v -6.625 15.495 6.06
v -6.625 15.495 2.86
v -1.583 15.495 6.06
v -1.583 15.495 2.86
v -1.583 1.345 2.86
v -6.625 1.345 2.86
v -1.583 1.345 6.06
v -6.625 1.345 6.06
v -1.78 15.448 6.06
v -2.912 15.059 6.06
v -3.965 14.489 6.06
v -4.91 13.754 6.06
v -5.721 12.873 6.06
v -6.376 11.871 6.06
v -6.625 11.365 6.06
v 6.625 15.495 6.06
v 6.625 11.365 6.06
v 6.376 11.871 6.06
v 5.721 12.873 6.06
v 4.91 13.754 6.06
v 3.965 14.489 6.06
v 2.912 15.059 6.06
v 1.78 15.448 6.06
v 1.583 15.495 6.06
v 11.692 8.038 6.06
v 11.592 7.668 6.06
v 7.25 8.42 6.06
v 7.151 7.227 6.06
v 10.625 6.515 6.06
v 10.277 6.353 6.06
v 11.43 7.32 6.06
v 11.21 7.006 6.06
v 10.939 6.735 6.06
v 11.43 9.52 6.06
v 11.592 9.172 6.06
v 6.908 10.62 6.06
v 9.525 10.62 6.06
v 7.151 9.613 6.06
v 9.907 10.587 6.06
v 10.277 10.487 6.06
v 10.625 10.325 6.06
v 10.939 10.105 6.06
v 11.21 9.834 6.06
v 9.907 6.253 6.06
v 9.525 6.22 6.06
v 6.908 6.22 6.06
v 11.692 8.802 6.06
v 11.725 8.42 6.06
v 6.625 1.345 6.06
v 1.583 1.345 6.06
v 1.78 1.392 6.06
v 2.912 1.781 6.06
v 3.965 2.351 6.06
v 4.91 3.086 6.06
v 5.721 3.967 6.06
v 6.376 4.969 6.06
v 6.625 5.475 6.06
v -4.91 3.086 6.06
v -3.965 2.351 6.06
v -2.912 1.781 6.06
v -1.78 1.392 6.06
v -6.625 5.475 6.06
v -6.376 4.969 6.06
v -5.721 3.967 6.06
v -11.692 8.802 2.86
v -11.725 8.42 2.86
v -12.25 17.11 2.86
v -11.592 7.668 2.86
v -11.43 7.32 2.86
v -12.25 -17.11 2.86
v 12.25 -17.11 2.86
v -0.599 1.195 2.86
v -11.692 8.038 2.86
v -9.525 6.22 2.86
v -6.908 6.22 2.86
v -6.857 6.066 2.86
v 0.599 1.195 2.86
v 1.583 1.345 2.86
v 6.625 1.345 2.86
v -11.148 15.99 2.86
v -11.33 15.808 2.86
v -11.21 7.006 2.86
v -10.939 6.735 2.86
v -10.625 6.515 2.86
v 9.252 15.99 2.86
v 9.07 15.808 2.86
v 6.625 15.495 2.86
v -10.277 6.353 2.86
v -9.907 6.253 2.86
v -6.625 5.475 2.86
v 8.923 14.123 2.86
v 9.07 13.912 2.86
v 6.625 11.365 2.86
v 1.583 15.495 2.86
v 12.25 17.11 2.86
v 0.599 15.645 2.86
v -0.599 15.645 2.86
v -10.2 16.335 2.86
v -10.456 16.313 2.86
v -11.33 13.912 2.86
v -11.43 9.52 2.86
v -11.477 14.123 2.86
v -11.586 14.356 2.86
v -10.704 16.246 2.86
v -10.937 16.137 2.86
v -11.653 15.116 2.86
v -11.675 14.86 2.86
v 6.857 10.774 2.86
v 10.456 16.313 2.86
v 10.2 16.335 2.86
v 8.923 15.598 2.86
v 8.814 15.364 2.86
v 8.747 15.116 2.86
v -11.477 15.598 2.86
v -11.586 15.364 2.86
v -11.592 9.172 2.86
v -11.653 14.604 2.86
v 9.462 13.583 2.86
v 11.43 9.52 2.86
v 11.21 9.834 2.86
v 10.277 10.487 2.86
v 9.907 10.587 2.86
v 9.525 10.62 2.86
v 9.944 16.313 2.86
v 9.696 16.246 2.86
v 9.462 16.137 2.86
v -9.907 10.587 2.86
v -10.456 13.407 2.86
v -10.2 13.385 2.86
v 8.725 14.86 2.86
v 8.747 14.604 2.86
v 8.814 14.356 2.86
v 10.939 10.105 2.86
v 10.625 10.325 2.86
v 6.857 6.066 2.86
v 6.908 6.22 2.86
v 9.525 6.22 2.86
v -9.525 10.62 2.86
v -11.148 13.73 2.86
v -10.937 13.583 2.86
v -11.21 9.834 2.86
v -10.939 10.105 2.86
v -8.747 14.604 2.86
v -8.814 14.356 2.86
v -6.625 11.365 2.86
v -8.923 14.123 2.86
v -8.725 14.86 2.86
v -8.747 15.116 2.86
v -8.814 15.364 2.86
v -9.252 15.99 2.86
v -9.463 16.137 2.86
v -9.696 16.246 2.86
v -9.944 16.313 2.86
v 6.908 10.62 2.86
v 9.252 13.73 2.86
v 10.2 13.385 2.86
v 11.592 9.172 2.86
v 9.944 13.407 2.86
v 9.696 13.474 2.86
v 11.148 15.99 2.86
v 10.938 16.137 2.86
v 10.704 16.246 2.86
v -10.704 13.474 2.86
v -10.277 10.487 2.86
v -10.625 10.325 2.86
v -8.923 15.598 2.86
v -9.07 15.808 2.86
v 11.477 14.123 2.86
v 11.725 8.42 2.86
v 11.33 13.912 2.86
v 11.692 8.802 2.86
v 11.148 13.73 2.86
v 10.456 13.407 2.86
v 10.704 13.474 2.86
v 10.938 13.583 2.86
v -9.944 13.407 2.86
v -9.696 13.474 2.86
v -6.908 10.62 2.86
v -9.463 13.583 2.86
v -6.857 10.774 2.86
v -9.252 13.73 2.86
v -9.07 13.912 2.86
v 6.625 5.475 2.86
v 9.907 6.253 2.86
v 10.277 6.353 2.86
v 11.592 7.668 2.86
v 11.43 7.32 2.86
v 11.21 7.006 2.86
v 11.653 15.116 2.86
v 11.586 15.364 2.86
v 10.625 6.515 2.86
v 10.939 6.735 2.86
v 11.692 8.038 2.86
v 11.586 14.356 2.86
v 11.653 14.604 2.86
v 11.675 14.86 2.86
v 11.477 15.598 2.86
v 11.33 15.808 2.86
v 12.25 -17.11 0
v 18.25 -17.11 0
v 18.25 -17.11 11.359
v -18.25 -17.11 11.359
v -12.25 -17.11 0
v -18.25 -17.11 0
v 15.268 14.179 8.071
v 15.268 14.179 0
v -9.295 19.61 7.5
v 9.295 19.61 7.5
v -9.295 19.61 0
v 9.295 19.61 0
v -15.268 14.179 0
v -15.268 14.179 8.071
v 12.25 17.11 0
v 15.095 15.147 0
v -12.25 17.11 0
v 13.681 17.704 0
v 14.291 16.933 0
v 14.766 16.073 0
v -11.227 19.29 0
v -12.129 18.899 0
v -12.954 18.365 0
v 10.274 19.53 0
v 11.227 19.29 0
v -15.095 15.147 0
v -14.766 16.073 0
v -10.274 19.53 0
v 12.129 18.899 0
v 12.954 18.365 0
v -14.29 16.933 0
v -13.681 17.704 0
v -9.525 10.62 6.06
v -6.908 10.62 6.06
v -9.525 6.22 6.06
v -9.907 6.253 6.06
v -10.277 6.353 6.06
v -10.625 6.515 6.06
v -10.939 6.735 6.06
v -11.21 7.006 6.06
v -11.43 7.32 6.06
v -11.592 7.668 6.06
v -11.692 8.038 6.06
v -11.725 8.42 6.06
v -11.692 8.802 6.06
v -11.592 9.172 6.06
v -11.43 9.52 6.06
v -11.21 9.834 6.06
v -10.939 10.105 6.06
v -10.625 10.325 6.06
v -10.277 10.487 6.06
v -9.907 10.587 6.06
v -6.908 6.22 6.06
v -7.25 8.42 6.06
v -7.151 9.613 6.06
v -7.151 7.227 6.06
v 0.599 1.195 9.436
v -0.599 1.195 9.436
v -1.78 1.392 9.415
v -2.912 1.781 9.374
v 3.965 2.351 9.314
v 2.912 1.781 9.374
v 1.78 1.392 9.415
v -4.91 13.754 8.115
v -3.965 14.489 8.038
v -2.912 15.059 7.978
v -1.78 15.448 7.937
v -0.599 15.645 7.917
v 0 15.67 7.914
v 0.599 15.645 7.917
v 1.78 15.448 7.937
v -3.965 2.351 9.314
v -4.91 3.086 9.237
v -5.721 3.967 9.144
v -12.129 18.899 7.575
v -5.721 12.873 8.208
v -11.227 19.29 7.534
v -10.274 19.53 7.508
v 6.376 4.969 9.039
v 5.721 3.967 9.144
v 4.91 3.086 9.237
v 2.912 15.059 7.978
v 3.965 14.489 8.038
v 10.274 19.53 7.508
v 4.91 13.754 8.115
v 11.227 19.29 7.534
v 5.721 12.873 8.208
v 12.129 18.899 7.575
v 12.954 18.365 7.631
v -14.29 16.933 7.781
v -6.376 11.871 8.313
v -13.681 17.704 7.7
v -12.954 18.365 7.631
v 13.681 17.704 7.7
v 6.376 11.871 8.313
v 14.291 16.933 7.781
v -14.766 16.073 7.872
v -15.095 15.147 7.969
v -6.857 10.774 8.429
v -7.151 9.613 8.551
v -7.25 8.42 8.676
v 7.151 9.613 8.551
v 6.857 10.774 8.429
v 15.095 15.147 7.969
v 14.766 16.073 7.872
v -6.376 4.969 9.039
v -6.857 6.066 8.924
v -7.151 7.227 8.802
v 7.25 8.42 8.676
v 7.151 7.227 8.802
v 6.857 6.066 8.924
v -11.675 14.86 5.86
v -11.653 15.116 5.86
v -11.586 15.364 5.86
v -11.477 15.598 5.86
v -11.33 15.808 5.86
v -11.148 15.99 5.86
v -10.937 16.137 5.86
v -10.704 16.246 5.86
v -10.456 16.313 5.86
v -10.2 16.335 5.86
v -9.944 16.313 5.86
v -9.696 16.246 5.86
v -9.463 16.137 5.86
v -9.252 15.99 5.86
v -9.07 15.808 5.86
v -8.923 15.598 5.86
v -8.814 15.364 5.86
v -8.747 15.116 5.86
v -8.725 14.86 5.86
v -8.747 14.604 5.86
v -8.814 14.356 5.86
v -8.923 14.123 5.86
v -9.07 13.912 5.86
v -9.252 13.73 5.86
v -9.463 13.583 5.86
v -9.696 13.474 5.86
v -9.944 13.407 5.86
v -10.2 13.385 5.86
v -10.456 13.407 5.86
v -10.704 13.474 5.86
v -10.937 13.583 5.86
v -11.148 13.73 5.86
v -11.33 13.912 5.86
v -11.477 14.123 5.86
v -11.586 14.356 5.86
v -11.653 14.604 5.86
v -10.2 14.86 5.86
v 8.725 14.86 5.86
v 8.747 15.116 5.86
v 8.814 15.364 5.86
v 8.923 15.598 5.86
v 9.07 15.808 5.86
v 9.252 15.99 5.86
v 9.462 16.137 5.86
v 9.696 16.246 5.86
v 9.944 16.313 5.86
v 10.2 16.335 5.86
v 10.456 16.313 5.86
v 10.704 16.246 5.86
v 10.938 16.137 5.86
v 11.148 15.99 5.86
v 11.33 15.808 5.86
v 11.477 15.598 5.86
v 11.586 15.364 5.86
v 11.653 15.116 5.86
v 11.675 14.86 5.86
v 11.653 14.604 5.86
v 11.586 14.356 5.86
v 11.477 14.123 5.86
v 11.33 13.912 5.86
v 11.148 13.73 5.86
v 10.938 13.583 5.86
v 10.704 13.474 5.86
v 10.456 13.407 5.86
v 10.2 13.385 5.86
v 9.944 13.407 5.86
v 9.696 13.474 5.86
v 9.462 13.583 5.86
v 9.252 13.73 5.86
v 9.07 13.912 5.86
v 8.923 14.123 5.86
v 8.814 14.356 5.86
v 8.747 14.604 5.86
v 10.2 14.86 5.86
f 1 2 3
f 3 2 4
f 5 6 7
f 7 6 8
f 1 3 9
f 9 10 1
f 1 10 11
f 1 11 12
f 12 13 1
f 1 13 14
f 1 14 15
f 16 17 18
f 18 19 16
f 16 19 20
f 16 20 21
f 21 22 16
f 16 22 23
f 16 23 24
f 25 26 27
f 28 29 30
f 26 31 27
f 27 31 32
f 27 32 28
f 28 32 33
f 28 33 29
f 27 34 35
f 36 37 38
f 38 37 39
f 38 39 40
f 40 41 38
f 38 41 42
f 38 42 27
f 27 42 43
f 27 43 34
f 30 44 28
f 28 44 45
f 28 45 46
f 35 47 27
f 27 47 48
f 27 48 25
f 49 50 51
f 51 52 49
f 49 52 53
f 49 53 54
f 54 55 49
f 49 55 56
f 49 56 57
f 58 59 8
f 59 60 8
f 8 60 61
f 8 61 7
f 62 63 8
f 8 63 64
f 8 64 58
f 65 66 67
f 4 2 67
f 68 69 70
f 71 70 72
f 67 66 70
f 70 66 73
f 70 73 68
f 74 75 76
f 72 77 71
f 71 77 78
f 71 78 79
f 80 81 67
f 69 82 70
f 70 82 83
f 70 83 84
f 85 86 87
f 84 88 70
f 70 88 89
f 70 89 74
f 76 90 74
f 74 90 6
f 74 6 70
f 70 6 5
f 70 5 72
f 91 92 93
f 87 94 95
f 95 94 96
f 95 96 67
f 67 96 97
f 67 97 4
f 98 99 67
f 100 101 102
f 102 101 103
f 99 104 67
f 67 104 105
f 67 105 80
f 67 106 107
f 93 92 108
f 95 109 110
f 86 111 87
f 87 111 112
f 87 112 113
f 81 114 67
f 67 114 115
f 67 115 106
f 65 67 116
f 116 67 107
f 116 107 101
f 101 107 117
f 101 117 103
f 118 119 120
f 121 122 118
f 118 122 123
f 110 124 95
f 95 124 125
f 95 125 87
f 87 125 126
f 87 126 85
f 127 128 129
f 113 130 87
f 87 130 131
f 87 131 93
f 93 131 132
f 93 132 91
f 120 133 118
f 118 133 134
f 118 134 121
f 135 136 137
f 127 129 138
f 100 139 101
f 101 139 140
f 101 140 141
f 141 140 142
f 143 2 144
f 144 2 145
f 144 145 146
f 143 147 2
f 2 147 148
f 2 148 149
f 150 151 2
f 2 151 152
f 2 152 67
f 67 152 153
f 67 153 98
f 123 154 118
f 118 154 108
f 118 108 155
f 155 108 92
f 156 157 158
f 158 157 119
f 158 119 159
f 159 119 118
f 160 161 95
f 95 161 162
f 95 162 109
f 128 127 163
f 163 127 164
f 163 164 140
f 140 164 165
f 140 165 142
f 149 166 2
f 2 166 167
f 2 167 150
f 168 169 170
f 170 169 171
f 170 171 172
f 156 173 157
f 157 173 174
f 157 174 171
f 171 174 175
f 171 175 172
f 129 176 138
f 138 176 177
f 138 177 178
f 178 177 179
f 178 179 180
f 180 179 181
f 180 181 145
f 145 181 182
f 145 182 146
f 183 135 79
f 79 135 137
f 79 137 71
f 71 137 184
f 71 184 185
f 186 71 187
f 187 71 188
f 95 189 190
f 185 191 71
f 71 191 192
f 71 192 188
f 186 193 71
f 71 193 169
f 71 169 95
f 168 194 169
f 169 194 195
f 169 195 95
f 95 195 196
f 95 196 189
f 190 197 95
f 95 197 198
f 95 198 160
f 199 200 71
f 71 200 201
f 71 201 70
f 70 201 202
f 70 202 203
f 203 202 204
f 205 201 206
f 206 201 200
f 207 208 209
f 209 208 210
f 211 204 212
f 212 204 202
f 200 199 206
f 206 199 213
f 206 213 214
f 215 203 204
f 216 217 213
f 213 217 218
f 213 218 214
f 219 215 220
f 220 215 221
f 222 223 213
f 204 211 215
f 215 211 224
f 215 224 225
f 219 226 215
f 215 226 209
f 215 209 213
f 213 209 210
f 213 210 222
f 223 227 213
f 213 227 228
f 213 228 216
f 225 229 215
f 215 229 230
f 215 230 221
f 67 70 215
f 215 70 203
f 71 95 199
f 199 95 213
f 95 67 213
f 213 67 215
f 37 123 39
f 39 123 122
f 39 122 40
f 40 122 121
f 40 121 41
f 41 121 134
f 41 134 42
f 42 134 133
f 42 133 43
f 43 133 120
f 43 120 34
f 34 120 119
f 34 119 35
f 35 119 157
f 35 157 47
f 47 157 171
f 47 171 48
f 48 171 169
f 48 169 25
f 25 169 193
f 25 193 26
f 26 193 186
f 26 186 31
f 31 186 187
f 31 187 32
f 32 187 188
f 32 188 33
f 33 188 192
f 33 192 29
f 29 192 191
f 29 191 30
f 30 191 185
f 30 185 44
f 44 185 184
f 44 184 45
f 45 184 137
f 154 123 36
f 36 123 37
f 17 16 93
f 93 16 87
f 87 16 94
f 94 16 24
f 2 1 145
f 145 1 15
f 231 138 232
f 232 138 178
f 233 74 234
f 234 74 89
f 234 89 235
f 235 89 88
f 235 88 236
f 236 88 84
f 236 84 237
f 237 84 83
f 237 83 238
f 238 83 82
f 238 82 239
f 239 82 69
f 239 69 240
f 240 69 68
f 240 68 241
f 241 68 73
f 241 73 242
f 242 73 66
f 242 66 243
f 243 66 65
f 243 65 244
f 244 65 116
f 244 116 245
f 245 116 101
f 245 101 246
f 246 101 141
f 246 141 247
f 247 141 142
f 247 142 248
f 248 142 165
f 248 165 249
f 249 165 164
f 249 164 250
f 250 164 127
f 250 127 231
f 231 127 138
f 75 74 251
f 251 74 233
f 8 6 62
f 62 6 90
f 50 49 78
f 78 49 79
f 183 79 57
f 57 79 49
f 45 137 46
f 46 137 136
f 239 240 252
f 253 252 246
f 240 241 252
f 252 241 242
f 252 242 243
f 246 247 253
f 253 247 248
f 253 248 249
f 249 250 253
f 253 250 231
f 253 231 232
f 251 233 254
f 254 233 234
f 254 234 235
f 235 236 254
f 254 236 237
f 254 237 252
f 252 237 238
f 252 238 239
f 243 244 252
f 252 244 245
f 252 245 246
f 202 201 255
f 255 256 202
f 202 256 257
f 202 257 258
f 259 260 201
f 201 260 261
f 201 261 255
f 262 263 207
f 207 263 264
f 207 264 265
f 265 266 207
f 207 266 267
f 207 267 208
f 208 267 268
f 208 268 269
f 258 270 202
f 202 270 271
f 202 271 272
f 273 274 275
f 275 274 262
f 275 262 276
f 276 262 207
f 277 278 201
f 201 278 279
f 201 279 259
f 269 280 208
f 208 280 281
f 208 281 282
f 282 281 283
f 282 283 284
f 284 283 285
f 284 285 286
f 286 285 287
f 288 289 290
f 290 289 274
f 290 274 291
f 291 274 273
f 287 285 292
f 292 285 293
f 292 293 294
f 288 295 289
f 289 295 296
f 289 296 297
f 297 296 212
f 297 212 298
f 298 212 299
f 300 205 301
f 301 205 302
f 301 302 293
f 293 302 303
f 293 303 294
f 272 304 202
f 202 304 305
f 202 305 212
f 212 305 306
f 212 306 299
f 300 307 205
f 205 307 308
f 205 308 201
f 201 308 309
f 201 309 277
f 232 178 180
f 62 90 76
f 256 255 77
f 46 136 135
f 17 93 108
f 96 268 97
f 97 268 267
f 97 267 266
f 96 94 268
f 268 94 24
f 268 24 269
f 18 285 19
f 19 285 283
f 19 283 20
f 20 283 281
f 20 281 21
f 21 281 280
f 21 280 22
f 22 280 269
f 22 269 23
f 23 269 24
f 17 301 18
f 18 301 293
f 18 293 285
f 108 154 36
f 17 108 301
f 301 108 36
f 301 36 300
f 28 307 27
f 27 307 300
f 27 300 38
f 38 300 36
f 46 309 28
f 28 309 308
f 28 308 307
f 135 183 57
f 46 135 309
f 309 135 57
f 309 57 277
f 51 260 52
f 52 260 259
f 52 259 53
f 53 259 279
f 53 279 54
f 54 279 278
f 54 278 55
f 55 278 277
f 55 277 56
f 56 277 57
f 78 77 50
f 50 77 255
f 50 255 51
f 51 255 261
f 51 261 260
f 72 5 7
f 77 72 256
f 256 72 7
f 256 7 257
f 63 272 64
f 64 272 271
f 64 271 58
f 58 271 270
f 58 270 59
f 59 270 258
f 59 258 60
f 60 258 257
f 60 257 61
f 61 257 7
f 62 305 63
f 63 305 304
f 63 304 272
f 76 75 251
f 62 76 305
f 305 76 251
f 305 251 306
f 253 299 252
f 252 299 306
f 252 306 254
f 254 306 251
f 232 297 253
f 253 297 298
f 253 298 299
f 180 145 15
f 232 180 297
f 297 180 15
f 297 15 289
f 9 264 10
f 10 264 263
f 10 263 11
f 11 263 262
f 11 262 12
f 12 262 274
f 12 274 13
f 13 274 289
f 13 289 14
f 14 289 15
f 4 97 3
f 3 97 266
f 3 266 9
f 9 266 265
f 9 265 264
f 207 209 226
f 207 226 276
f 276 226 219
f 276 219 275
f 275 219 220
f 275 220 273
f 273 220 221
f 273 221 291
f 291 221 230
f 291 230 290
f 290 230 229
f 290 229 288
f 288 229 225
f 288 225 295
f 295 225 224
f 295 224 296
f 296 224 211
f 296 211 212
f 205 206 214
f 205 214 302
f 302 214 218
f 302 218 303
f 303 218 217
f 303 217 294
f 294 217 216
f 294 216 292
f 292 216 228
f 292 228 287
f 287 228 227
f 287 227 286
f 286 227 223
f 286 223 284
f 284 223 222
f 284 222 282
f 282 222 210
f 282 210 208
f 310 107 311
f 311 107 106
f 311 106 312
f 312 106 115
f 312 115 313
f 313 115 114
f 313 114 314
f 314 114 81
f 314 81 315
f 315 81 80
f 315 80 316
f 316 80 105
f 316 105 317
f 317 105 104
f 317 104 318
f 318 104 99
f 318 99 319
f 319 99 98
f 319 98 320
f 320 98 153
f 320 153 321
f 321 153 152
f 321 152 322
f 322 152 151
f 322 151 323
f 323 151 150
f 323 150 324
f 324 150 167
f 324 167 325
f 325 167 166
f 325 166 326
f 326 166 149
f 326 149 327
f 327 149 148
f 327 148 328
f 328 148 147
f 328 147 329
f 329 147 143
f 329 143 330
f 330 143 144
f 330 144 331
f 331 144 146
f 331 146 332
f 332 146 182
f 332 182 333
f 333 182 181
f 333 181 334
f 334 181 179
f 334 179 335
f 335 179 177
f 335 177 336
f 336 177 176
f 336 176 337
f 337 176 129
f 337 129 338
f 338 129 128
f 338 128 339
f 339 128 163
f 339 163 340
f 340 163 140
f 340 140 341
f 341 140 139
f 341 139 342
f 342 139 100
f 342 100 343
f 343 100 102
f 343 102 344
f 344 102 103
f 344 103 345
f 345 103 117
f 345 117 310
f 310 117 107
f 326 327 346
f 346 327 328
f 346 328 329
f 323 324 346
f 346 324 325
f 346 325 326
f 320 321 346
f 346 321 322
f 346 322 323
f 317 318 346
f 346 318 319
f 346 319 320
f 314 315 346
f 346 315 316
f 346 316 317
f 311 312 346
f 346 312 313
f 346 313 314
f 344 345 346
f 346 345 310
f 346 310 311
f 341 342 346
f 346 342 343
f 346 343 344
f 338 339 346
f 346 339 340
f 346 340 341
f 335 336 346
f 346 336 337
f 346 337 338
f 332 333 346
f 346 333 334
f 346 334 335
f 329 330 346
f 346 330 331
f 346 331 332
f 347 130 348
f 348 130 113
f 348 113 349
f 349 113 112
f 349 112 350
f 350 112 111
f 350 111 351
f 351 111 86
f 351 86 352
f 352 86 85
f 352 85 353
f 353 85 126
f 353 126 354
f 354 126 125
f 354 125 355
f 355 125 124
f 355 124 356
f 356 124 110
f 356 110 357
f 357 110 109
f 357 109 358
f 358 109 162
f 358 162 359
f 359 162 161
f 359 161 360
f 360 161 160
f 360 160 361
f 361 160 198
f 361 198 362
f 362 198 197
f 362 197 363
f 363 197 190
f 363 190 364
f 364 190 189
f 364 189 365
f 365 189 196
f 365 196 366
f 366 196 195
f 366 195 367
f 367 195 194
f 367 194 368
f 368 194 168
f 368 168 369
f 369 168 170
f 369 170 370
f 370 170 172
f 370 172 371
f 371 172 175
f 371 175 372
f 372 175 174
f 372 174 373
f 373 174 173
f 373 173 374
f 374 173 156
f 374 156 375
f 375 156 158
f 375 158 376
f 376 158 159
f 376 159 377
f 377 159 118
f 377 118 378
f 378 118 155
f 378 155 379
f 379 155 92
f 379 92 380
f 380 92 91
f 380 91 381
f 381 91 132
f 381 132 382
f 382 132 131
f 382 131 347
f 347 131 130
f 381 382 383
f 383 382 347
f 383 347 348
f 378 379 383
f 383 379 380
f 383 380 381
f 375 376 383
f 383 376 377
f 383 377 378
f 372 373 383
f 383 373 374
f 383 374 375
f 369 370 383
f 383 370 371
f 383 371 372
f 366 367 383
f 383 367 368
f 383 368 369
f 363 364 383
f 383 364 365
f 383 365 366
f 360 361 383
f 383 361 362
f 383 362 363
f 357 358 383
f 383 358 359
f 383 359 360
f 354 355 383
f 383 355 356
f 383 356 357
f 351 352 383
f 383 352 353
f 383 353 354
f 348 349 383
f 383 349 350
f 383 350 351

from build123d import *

# Parameters (mm, degrees)
SKETCH1_W               = 24.5
SKETCH1_H               = 34.22
BOSS_EXTRUDE1_DEPTH     = 7.5
SKETCH2_W               = 24.5
SKETCH2_H               = 34.22
CUT_EXTRUDE1_DEPTH      = 2.86
SKETCH3_W               = 13.25
SKETCH3_H               = 14.15
CUT_EXTRUDE2_DEPTH      = 3.2
BOSS_EXTRUDE2_START     = -18.25
BOSS_EXTRUDE2_DEPTH     = 36.5
BOSS_EXTRUDE2_START_2   = 7.5
BOSS_EXTRUDE2_2_DEPTH   = 4.5
CUT_EXTRUDE3_DEPTH      = 28.465218004
CUT_EXTRUDE3_DEPTH_BACK = 28.465218004
SKETCH4_R               = 7.25
FILLET1_R               = 6
SKETCH6_R               = 1.475
CUT_EXTRUDE4_DEPTH      = 3


with BuildPart() as part:
    # Sketch1 → Boss-Extrude1 (new body)
    with BuildSketch(Plane.XY):
        Polygon((-12.25, -17.11), (-12.25, 17.11), (12.25, 17.11), (12.25, -17.11), (18.25, -17.11), (14.75, 19.61), (-14.75, 19.61), (-18.25, -17.11), align=None)
        Rectangle(SKETCH1_W, SKETCH1_H)
    extrude(amount=BOSS_EXTRUDE1_DEPTH)

    # Sketch2 → Cut-Extrude1 (cut)
    with BuildSketch(Plane(origin=(0, 0, 0), x_dir=(-1, 0, 0), z_dir=(0, 0, -1))):
        Rectangle(SKETCH2_W, SKETCH2_H)
    extrude(amount=-CUT_EXTRUDE1_DEPTH, mode=Mode.SUBTRACT)

    # Sketch3 → Cut-Extrude2 (cut)
    with BuildSketch(Plane(origin=(0, 0, 2.86), x_dir=(-1, 0, 0), z_dir=(0, 0, -1))):
        with BuildLine():
            Line((-6.625, 6.22), (-6.625, 10.62))
            Line((-6.625, 10.62), (-9.525, 10.62))
            ThreePointArc((-9.525, 10.62), (-11.725, 8.42), (-9.525, 6.22))
            Line((-9.525, 6.22), (-6.625, 6.22))
        make_face()
        with Locations((0, 8.42)):
            Rectangle(SKETCH3_W, SKETCH3_H)
        with BuildLine():
            Line((9.525, 10.62), (6.625, 10.62))
            Line((6.625, 10.62), (6.625, 6.22))
            Line((6.625, 6.22), (9.525, 6.22))
            ThreePointArc((9.525, 6.22), (11.725, 8.42), (9.525, 10.62))
        make_face()
    extrude(amount=-CUT_EXTRUDE2_DEPTH, mode=Mode.SUBTRACT)

    # Boss-Extrude2: read off the stored shape, not the designer's step
    # Boss-Extrude2 outline → Boss-Extrude2 (add)
    with BuildSketch(Plane.YZ.offset(BOSS_EXTRUDE2_START)):
        Polygon((-17.11, 11.359427519), (-17.11, 7.5), (19.61, 7.5), align=None)
    extrude(amount=BOSS_EXTRUDE2_DEPTH)

    # Boss-Extrude2 2 outline → Boss-Extrude2 2 (cut)
    with BuildSketch(Plane.XY.offset(BOSS_EXTRUDE2_START_2)):
        Polygon((14.75, 19.61), (18.25, -17.11), (18.25, 21), (14.617510893, 21), align=None)
        Polygon((-14.75, 19.61), (-14.617510893, 21), (-18.25, 21), (-18.25, -17.11), align=None)
    extrude(amount=BOSS_EXTRUDE2_2_DEPTH, mode=Mode.SUBTRACT)

    # Sketch4 → Cut-Extrude3 (cut, two sides: drawn at the far end of the back side and taken through both)
    with BuildSketch(Plane(origin=(0, 0, 6.06), x_dir=(-1, 0, 0), z_dir=(0, 0, -1)).offset(-CUT_EXTRUDE3_DEPTH_BACK)):
        with Locations(Location((0, 8.42, 0), (0, 0, 17.6648328))):
            Circle(SKETCH4_R)
    extrude(amount=CUT_EXTRUDE3_DEPTH + CUT_EXTRUDE3_DEPTH_BACK, mode=Mode.SUBTRACT)

    # Fillet1
    fillet1_edges = [part.edges().sort_by_distance(p)[0] for p in [
        (-14.75, 19.61, 3.75),
        (14.75, 19.61, 3.75),
    ]]
    fillet(fillet1_edges, radius=FILLET1_R)

    # Sketch6 → Cut-Extrude4 (cut)
    with BuildSketch(Plane(origin=(0, 0, 2.86), x_dir=(-1, 0, 0), z_dir=(0, 0, -1))):
        with Locations((-10.2, 14.86)):
            Circle(SKETCH6_R)
        with Locations(Location((10.2, 14.86, 0), (0, 0, 180))):
            Circle(SKETCH6_R)
    extrude(amount=-CUT_EXTRUDE4_DEPTH, mode=Mode.SUBTRACT)


solid = part.part
